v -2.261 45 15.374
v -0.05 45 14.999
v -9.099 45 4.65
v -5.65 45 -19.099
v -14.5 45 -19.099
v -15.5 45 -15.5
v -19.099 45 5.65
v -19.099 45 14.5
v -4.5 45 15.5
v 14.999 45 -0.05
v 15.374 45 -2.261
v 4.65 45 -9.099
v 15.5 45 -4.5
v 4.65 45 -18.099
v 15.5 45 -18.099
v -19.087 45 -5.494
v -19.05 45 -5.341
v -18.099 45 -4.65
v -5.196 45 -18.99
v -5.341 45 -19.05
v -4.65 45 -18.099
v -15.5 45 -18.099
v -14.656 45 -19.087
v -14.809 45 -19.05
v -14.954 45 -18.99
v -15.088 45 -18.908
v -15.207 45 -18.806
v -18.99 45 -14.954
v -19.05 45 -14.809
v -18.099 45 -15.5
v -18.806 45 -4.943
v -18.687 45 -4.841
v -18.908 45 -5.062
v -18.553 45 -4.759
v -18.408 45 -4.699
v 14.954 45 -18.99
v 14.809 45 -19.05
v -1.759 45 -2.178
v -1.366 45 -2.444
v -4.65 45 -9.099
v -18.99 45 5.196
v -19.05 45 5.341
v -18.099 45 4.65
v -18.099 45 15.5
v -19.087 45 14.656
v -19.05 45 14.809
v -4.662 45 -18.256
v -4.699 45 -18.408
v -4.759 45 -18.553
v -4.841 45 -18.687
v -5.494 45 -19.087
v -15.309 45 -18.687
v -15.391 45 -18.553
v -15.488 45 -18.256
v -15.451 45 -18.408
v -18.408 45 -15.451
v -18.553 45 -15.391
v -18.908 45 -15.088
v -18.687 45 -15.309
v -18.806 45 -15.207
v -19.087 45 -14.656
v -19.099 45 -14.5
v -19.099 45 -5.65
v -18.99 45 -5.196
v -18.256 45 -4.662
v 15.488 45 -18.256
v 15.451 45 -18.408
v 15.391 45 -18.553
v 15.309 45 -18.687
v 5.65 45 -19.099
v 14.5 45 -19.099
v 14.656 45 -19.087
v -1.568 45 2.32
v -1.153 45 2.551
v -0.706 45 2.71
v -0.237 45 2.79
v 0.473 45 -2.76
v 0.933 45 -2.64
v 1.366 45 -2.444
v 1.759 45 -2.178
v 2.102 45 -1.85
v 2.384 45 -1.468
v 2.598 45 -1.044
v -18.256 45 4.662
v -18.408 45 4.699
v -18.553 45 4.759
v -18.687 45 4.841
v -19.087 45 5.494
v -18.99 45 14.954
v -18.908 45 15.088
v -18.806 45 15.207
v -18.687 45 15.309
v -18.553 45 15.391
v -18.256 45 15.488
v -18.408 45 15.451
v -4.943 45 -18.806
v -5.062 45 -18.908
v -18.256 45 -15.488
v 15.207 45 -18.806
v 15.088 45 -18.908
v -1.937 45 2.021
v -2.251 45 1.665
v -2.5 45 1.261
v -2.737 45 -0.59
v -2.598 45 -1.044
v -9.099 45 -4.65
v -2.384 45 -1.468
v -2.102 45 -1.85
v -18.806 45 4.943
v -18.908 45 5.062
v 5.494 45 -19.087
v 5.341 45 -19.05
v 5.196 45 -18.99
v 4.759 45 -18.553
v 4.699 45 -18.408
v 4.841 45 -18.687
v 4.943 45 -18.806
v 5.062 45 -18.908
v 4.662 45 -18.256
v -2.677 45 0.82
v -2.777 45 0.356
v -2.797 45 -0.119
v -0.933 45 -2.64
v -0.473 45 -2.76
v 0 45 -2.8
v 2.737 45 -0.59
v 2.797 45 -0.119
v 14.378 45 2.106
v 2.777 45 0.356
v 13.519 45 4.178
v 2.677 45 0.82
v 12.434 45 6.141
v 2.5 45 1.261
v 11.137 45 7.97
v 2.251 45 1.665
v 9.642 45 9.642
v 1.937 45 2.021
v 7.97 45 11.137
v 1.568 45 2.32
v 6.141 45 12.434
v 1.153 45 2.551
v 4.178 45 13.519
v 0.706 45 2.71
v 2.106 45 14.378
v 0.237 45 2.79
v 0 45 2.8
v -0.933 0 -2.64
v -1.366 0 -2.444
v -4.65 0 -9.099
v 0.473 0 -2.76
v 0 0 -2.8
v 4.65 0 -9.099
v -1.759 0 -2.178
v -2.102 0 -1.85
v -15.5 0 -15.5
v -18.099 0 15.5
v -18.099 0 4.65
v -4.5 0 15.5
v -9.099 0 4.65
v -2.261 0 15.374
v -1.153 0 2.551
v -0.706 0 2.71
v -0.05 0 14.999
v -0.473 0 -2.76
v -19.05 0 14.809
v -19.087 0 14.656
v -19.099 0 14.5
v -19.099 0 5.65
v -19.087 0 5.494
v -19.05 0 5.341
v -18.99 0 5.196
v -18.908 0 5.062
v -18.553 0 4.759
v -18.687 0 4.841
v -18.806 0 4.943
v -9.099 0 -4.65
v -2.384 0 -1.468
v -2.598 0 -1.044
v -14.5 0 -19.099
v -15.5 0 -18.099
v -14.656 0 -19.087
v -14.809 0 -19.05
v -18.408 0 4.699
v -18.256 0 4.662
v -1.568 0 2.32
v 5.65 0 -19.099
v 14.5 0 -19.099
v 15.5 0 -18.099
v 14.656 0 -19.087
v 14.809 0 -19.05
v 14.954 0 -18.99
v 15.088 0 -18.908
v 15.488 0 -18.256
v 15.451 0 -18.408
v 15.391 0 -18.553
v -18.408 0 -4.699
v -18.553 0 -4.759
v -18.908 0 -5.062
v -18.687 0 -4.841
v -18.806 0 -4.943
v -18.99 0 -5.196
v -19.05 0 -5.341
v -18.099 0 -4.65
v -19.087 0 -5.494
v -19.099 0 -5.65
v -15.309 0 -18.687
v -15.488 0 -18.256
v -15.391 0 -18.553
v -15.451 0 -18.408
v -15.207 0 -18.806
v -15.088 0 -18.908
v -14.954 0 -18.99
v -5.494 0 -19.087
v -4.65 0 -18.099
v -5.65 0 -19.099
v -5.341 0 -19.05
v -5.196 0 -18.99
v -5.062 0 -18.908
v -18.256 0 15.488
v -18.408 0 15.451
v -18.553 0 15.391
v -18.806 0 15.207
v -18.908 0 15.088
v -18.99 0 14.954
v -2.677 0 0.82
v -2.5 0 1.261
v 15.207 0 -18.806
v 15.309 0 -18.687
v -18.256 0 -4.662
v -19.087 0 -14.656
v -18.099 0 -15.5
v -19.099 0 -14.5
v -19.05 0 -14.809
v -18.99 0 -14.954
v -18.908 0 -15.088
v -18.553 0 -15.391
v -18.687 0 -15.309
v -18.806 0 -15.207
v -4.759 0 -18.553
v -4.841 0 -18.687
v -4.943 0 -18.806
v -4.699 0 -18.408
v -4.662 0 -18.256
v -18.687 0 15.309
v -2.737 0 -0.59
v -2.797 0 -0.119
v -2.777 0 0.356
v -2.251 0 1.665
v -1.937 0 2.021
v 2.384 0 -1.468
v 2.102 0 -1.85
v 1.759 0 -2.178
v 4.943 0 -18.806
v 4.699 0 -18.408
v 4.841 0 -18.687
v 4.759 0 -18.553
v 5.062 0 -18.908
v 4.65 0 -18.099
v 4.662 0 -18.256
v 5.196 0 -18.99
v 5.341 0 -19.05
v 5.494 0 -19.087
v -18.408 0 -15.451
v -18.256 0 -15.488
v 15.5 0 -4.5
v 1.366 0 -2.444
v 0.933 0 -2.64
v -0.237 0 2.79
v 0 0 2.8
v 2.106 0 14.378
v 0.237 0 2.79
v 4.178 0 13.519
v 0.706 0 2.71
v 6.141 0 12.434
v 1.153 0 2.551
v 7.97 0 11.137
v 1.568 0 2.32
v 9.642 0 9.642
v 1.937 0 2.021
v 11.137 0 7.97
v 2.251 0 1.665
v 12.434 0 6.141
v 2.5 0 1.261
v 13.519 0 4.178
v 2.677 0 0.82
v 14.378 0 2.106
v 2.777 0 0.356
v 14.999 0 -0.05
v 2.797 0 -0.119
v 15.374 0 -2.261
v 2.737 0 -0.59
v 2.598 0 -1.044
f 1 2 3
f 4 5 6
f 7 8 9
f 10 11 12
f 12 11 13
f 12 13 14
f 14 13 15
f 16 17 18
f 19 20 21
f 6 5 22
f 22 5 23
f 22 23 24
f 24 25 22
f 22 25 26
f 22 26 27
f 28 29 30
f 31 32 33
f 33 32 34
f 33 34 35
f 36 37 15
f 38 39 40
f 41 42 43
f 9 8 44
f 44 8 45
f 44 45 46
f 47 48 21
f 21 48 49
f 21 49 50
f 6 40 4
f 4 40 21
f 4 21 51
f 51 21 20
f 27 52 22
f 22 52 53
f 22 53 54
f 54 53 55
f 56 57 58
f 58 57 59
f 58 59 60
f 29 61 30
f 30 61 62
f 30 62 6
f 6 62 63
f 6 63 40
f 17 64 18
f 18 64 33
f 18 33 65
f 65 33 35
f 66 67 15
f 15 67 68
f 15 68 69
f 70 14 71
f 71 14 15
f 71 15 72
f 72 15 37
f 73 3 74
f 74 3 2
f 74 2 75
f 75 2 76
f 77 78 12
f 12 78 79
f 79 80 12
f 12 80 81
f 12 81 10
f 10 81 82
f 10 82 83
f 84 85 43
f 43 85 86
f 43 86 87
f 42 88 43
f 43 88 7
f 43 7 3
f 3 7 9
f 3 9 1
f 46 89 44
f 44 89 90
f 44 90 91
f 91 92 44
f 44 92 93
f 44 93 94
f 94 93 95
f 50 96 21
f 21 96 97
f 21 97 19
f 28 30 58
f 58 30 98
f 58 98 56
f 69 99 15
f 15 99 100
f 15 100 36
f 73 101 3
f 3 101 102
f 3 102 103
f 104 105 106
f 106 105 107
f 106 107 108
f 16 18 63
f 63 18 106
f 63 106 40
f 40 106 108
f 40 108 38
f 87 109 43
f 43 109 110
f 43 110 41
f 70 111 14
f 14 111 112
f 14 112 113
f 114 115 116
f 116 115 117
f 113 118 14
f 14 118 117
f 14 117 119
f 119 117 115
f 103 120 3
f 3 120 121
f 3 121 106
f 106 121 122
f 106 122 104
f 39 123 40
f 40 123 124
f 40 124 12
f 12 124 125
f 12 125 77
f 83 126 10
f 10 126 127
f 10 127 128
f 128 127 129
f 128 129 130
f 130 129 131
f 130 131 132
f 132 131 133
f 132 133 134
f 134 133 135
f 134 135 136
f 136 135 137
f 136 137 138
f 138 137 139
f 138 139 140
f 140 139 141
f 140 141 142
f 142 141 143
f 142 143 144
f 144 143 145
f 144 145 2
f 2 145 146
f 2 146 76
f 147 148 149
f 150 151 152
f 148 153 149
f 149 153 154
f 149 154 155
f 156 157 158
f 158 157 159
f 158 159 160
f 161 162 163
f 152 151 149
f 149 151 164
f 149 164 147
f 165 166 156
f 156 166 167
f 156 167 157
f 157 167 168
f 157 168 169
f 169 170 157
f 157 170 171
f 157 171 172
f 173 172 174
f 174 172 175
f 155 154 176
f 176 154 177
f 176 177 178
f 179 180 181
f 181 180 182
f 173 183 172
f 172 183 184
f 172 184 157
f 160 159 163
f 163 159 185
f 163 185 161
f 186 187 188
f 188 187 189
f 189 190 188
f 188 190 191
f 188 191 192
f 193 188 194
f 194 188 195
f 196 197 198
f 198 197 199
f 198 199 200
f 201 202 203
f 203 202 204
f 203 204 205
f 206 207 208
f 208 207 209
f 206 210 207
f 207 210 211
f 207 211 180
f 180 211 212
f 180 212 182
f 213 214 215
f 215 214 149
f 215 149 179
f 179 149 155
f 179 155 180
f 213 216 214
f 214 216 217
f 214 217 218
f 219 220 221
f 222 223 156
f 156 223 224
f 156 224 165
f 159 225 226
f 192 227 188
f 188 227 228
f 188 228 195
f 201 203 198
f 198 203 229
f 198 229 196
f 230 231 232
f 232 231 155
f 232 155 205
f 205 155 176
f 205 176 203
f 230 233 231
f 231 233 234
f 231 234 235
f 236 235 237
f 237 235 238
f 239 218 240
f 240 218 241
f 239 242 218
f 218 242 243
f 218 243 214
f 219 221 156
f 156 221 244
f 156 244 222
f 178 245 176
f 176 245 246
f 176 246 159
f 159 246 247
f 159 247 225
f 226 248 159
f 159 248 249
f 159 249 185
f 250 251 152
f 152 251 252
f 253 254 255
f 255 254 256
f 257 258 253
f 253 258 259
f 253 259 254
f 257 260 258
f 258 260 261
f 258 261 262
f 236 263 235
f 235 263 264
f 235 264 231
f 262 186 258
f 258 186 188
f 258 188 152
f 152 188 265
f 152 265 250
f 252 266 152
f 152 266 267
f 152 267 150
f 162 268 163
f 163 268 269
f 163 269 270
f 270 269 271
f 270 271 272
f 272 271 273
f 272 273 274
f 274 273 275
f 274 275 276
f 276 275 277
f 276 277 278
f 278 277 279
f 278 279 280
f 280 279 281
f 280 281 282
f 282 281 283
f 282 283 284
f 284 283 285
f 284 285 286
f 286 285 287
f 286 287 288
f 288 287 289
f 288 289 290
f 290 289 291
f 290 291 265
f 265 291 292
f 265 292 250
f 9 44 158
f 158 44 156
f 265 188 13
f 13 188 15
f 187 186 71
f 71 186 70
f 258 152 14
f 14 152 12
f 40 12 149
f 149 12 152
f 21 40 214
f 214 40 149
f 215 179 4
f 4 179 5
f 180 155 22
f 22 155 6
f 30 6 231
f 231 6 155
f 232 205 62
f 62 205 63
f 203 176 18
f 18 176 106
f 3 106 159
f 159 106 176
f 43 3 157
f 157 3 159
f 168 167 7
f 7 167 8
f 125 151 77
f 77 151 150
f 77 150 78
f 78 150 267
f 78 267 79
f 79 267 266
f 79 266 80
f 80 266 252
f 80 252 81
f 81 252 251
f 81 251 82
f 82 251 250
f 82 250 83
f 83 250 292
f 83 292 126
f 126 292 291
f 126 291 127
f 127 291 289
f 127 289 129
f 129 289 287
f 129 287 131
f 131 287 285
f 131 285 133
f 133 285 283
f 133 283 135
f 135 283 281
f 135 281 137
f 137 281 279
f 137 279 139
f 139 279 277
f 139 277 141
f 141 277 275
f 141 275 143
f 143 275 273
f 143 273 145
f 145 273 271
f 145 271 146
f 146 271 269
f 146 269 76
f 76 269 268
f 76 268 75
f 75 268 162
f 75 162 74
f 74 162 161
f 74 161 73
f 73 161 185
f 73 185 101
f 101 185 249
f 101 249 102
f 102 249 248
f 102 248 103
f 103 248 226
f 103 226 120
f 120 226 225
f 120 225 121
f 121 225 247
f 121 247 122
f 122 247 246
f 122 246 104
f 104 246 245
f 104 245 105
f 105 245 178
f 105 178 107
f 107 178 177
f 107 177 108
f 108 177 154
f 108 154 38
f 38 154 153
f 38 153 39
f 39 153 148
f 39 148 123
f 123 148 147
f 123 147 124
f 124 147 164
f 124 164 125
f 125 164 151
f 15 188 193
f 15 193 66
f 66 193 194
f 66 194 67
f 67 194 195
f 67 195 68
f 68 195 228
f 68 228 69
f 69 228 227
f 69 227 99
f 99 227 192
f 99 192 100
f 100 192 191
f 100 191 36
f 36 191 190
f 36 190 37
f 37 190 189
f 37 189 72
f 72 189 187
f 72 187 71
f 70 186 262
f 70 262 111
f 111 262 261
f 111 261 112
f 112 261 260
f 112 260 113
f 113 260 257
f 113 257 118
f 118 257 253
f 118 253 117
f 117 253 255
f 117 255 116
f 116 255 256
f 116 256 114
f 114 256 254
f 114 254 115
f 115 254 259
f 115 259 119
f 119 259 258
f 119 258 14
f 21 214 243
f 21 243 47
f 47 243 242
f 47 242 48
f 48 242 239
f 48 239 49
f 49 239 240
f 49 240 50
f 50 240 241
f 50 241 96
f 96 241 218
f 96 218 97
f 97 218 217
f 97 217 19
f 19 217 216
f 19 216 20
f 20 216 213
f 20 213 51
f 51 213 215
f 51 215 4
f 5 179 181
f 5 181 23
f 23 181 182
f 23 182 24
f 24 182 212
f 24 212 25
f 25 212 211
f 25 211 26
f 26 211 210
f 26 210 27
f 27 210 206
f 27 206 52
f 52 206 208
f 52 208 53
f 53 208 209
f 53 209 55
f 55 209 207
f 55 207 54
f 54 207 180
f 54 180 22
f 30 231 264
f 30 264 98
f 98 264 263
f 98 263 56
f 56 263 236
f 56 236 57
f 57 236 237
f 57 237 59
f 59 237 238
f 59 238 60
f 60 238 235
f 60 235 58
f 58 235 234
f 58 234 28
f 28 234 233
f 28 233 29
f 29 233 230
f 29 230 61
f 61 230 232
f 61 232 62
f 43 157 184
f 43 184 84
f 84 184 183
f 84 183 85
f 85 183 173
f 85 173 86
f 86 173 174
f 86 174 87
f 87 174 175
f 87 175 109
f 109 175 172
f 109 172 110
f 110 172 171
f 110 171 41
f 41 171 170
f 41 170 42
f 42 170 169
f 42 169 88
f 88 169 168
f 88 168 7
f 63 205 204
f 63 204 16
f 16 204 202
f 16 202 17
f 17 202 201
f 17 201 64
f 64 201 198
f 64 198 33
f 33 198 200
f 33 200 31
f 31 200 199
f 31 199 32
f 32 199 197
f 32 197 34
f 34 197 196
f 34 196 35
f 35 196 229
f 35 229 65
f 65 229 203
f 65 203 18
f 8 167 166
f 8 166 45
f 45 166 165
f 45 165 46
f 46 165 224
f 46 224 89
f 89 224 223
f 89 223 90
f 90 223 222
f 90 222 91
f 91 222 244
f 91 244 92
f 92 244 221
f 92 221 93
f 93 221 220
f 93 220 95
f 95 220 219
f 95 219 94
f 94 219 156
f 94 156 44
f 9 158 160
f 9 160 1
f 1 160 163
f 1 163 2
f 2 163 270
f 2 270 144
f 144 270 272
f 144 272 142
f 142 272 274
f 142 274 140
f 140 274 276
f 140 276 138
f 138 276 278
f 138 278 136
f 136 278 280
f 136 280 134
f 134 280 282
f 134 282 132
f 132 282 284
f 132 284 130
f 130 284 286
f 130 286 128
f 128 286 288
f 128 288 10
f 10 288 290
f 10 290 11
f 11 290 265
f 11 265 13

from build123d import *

# Parameters (mm, degrees)
SKETCH1_R           = 2.8
BOSS_EXTRUDE1_DEPTH = 45
FILLET1_R           = 1
FILLET2_R           = 20


with BuildPart() as part:
    # Sketch1 → Boss-Extrude1 (new body)
    with BuildSketch(Plane(origin=(0, 0, 0), x_dir=(1, 0, 0), z_dir=(0, 1, 0))):
        Polygon((-19.099152542, -15.5), (-19.099152542, -4.65), (-9.099152542, -4.65), (-9.099152542, 4.65), (-19.099152542, 4.65), (-19.099152542, 15.5), (-15.5, 15.5), (-15.5, 19.099152542), (-4.65, 19.099152542), (-4.65, 9.099152542), (4.65, 9.099152542), (4.65, 19.099152542), (15.5, 19.099152542), (15.5, -15.5), align=None)
        with Locations(Location((0, 0, 0), (0, 0, 90))):
            Circle(SKETCH1_R, mode=Mode.SUBTRACT)
    extrude(amount=BOSS_EXTRUDE1_DEPTH)

    # Fillet1
    fillet1_edges = [part.edges().sort_by_distance(p)[0] for p in [
        (-19.099152542, 22.5, 15.5),
        (-19.099152542, 22.5, 4.65),
        (-19.099152542, 22.5, -4.65),
        (-19.099152542, 22.5, -15.5),
        (-15.5, 22.5, -19.099152542),
        (-4.65, 22.5, -19.099152542),
        (4.65, 22.5, -19.099152542),
        (15.5, 22.5, -19.099152542),
    ]]
    fillet(fillet1_edges, radius=FILLET1_R)

    # Fillet2
    fillet2_edges = [part.edges().sort_by_distance(p)[0] for p in [
        (15.5, 22.5, 15.5),
    ]]
    fillet(fillet2_edges, radius=FILLET2_R)


solid = part.part
